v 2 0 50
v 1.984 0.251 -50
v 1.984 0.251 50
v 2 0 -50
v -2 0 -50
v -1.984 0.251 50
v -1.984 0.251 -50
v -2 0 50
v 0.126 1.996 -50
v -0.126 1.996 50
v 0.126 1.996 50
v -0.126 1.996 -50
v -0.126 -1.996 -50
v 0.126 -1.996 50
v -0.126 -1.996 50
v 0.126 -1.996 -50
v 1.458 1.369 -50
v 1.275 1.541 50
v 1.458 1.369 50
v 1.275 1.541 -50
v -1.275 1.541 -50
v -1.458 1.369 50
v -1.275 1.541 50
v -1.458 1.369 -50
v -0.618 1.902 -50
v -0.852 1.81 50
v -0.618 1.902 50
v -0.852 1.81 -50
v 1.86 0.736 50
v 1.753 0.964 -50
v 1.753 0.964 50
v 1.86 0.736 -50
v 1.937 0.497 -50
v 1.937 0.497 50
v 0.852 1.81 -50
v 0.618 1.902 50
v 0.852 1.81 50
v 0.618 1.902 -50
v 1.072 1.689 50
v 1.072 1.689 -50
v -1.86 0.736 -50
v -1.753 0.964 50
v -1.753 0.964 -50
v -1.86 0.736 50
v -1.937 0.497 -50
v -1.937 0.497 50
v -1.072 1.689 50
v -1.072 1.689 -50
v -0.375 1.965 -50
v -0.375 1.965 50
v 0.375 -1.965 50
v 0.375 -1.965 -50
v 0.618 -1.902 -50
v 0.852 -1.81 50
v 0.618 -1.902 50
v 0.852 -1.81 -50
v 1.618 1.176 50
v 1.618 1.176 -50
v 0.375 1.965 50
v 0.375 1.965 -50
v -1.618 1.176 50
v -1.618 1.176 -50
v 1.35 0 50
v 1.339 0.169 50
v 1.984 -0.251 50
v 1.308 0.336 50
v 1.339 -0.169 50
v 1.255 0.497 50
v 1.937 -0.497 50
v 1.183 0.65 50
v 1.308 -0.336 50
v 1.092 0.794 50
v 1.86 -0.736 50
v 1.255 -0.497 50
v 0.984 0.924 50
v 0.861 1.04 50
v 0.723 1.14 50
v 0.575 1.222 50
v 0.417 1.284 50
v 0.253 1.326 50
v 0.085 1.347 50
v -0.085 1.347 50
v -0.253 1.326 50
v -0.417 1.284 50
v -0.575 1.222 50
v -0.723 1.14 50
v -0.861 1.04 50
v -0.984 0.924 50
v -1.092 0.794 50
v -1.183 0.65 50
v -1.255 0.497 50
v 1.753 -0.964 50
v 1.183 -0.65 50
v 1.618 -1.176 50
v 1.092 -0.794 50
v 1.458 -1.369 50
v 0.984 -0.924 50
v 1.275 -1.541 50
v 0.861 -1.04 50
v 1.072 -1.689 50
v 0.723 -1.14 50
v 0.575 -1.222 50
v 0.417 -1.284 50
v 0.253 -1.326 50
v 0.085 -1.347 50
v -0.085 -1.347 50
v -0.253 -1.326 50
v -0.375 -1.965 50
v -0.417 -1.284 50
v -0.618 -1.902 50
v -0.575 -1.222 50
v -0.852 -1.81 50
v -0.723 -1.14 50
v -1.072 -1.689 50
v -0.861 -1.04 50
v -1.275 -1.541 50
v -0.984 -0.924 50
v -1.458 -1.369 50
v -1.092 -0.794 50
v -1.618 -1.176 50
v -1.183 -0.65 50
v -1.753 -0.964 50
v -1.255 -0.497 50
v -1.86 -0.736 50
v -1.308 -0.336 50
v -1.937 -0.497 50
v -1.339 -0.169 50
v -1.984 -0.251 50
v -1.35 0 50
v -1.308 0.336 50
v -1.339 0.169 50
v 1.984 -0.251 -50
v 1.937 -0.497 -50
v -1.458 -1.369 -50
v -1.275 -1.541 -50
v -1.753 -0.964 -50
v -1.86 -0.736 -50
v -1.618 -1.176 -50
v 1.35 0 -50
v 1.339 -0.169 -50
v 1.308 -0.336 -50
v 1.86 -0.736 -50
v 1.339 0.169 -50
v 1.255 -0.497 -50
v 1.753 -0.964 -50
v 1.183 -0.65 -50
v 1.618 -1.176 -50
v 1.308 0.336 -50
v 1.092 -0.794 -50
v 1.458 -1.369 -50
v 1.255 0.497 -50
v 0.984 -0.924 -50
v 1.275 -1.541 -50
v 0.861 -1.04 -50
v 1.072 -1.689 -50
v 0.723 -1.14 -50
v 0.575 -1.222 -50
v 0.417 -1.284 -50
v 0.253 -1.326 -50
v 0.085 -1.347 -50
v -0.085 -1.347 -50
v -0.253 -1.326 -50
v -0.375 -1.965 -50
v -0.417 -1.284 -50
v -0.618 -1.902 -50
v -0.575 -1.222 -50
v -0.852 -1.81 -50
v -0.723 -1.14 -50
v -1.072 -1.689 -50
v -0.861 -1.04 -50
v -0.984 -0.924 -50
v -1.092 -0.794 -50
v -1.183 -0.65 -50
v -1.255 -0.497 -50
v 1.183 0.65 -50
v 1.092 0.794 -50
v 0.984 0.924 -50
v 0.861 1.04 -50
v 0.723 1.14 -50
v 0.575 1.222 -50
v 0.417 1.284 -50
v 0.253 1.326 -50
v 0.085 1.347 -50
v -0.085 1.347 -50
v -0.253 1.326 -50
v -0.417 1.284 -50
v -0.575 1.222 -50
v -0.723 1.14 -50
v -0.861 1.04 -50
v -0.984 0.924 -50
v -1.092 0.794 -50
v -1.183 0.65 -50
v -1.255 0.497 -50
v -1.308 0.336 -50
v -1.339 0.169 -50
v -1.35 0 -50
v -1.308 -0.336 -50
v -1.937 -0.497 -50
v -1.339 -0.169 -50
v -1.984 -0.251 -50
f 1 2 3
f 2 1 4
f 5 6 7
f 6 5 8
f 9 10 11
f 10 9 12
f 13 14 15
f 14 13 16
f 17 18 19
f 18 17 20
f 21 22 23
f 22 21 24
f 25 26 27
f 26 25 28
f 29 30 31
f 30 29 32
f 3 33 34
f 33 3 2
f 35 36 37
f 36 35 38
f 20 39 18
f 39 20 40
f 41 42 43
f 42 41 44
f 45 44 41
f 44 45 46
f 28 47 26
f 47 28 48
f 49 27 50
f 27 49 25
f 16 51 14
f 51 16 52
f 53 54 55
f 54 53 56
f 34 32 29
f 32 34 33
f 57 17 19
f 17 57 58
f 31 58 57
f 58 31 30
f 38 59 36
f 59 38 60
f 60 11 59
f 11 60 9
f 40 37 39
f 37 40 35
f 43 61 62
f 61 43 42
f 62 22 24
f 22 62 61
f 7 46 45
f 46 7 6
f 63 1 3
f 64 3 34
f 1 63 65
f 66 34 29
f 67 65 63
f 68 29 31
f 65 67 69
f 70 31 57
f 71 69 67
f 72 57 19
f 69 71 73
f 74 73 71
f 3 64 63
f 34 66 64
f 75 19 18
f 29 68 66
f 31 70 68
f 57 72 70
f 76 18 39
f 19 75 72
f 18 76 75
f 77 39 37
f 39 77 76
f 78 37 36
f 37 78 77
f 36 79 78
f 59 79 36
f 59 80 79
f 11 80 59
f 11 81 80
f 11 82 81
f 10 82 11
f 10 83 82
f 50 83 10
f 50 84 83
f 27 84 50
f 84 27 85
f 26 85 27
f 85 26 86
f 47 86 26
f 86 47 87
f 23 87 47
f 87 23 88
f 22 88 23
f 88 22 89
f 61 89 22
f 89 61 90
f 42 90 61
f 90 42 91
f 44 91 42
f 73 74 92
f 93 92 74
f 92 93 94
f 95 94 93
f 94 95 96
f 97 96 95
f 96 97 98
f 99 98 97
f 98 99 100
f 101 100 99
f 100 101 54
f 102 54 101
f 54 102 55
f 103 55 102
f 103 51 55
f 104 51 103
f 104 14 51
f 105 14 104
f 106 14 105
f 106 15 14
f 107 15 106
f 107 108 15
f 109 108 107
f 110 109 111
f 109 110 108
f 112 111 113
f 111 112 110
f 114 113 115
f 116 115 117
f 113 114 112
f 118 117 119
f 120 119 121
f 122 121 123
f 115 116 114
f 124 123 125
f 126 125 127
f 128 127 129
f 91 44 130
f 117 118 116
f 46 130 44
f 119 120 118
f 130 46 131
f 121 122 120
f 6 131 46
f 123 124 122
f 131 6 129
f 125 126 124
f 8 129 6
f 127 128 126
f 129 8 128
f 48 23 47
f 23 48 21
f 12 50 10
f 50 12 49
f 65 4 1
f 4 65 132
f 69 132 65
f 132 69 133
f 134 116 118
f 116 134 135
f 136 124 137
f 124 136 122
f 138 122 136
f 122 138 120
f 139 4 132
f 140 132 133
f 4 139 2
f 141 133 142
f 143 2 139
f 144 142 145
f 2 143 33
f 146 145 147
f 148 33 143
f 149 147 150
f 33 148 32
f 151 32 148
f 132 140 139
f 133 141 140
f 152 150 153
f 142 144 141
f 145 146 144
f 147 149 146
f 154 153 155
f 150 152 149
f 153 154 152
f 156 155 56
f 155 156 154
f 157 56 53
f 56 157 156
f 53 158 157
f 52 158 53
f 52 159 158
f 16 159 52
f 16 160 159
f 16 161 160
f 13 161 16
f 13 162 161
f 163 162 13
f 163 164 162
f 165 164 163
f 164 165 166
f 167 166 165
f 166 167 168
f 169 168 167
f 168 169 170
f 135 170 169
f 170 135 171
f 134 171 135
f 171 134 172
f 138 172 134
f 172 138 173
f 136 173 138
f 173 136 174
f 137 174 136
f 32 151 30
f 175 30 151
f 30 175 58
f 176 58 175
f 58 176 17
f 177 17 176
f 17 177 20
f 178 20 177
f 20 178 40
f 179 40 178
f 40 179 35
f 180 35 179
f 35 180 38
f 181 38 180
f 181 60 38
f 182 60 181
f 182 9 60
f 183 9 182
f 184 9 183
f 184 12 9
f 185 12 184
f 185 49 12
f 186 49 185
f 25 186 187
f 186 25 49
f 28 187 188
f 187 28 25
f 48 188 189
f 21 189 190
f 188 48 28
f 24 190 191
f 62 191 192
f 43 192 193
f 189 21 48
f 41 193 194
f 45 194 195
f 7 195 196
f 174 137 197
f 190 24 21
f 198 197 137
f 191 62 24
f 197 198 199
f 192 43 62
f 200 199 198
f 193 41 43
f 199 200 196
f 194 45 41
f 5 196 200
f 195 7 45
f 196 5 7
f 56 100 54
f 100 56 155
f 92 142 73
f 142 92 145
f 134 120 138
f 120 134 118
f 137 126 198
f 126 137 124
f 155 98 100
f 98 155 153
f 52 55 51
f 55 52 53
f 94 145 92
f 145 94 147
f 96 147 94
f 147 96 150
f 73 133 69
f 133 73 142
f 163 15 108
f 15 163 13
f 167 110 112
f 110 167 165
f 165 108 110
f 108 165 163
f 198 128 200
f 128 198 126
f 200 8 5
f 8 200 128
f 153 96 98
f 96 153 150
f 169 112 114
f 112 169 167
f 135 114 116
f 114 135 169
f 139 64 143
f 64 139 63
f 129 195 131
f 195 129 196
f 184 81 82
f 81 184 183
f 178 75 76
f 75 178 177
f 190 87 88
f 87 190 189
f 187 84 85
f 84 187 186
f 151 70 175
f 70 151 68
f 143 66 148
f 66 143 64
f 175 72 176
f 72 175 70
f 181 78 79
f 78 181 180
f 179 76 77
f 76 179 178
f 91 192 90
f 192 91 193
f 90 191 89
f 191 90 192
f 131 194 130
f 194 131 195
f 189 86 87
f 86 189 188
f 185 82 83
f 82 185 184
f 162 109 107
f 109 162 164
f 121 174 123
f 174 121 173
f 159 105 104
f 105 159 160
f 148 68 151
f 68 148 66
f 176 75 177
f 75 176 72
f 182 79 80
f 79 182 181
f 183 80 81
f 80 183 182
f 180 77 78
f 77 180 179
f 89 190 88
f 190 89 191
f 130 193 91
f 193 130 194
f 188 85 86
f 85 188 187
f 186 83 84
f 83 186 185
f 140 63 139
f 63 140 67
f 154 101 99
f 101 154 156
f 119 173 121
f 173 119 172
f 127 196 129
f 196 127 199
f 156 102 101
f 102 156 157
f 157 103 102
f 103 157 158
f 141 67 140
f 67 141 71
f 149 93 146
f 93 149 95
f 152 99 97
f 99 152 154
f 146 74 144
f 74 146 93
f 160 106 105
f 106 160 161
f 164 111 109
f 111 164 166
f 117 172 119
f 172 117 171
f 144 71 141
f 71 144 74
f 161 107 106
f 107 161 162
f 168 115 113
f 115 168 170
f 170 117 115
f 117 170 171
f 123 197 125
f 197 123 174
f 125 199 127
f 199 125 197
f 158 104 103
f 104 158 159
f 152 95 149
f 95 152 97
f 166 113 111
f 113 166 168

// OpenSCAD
$fn = 50;


difference() {
	union() {
		translate(v = [0, 0, -50.0000000000]) {
			cylinder(h = 100, r = 2.0000000000);
		}
	}
	union() {
		translate(v = [0, 0, -100.0000000000]) {
			cylinder(h = 200, r = 1.3500000000);
		}
	}
}
